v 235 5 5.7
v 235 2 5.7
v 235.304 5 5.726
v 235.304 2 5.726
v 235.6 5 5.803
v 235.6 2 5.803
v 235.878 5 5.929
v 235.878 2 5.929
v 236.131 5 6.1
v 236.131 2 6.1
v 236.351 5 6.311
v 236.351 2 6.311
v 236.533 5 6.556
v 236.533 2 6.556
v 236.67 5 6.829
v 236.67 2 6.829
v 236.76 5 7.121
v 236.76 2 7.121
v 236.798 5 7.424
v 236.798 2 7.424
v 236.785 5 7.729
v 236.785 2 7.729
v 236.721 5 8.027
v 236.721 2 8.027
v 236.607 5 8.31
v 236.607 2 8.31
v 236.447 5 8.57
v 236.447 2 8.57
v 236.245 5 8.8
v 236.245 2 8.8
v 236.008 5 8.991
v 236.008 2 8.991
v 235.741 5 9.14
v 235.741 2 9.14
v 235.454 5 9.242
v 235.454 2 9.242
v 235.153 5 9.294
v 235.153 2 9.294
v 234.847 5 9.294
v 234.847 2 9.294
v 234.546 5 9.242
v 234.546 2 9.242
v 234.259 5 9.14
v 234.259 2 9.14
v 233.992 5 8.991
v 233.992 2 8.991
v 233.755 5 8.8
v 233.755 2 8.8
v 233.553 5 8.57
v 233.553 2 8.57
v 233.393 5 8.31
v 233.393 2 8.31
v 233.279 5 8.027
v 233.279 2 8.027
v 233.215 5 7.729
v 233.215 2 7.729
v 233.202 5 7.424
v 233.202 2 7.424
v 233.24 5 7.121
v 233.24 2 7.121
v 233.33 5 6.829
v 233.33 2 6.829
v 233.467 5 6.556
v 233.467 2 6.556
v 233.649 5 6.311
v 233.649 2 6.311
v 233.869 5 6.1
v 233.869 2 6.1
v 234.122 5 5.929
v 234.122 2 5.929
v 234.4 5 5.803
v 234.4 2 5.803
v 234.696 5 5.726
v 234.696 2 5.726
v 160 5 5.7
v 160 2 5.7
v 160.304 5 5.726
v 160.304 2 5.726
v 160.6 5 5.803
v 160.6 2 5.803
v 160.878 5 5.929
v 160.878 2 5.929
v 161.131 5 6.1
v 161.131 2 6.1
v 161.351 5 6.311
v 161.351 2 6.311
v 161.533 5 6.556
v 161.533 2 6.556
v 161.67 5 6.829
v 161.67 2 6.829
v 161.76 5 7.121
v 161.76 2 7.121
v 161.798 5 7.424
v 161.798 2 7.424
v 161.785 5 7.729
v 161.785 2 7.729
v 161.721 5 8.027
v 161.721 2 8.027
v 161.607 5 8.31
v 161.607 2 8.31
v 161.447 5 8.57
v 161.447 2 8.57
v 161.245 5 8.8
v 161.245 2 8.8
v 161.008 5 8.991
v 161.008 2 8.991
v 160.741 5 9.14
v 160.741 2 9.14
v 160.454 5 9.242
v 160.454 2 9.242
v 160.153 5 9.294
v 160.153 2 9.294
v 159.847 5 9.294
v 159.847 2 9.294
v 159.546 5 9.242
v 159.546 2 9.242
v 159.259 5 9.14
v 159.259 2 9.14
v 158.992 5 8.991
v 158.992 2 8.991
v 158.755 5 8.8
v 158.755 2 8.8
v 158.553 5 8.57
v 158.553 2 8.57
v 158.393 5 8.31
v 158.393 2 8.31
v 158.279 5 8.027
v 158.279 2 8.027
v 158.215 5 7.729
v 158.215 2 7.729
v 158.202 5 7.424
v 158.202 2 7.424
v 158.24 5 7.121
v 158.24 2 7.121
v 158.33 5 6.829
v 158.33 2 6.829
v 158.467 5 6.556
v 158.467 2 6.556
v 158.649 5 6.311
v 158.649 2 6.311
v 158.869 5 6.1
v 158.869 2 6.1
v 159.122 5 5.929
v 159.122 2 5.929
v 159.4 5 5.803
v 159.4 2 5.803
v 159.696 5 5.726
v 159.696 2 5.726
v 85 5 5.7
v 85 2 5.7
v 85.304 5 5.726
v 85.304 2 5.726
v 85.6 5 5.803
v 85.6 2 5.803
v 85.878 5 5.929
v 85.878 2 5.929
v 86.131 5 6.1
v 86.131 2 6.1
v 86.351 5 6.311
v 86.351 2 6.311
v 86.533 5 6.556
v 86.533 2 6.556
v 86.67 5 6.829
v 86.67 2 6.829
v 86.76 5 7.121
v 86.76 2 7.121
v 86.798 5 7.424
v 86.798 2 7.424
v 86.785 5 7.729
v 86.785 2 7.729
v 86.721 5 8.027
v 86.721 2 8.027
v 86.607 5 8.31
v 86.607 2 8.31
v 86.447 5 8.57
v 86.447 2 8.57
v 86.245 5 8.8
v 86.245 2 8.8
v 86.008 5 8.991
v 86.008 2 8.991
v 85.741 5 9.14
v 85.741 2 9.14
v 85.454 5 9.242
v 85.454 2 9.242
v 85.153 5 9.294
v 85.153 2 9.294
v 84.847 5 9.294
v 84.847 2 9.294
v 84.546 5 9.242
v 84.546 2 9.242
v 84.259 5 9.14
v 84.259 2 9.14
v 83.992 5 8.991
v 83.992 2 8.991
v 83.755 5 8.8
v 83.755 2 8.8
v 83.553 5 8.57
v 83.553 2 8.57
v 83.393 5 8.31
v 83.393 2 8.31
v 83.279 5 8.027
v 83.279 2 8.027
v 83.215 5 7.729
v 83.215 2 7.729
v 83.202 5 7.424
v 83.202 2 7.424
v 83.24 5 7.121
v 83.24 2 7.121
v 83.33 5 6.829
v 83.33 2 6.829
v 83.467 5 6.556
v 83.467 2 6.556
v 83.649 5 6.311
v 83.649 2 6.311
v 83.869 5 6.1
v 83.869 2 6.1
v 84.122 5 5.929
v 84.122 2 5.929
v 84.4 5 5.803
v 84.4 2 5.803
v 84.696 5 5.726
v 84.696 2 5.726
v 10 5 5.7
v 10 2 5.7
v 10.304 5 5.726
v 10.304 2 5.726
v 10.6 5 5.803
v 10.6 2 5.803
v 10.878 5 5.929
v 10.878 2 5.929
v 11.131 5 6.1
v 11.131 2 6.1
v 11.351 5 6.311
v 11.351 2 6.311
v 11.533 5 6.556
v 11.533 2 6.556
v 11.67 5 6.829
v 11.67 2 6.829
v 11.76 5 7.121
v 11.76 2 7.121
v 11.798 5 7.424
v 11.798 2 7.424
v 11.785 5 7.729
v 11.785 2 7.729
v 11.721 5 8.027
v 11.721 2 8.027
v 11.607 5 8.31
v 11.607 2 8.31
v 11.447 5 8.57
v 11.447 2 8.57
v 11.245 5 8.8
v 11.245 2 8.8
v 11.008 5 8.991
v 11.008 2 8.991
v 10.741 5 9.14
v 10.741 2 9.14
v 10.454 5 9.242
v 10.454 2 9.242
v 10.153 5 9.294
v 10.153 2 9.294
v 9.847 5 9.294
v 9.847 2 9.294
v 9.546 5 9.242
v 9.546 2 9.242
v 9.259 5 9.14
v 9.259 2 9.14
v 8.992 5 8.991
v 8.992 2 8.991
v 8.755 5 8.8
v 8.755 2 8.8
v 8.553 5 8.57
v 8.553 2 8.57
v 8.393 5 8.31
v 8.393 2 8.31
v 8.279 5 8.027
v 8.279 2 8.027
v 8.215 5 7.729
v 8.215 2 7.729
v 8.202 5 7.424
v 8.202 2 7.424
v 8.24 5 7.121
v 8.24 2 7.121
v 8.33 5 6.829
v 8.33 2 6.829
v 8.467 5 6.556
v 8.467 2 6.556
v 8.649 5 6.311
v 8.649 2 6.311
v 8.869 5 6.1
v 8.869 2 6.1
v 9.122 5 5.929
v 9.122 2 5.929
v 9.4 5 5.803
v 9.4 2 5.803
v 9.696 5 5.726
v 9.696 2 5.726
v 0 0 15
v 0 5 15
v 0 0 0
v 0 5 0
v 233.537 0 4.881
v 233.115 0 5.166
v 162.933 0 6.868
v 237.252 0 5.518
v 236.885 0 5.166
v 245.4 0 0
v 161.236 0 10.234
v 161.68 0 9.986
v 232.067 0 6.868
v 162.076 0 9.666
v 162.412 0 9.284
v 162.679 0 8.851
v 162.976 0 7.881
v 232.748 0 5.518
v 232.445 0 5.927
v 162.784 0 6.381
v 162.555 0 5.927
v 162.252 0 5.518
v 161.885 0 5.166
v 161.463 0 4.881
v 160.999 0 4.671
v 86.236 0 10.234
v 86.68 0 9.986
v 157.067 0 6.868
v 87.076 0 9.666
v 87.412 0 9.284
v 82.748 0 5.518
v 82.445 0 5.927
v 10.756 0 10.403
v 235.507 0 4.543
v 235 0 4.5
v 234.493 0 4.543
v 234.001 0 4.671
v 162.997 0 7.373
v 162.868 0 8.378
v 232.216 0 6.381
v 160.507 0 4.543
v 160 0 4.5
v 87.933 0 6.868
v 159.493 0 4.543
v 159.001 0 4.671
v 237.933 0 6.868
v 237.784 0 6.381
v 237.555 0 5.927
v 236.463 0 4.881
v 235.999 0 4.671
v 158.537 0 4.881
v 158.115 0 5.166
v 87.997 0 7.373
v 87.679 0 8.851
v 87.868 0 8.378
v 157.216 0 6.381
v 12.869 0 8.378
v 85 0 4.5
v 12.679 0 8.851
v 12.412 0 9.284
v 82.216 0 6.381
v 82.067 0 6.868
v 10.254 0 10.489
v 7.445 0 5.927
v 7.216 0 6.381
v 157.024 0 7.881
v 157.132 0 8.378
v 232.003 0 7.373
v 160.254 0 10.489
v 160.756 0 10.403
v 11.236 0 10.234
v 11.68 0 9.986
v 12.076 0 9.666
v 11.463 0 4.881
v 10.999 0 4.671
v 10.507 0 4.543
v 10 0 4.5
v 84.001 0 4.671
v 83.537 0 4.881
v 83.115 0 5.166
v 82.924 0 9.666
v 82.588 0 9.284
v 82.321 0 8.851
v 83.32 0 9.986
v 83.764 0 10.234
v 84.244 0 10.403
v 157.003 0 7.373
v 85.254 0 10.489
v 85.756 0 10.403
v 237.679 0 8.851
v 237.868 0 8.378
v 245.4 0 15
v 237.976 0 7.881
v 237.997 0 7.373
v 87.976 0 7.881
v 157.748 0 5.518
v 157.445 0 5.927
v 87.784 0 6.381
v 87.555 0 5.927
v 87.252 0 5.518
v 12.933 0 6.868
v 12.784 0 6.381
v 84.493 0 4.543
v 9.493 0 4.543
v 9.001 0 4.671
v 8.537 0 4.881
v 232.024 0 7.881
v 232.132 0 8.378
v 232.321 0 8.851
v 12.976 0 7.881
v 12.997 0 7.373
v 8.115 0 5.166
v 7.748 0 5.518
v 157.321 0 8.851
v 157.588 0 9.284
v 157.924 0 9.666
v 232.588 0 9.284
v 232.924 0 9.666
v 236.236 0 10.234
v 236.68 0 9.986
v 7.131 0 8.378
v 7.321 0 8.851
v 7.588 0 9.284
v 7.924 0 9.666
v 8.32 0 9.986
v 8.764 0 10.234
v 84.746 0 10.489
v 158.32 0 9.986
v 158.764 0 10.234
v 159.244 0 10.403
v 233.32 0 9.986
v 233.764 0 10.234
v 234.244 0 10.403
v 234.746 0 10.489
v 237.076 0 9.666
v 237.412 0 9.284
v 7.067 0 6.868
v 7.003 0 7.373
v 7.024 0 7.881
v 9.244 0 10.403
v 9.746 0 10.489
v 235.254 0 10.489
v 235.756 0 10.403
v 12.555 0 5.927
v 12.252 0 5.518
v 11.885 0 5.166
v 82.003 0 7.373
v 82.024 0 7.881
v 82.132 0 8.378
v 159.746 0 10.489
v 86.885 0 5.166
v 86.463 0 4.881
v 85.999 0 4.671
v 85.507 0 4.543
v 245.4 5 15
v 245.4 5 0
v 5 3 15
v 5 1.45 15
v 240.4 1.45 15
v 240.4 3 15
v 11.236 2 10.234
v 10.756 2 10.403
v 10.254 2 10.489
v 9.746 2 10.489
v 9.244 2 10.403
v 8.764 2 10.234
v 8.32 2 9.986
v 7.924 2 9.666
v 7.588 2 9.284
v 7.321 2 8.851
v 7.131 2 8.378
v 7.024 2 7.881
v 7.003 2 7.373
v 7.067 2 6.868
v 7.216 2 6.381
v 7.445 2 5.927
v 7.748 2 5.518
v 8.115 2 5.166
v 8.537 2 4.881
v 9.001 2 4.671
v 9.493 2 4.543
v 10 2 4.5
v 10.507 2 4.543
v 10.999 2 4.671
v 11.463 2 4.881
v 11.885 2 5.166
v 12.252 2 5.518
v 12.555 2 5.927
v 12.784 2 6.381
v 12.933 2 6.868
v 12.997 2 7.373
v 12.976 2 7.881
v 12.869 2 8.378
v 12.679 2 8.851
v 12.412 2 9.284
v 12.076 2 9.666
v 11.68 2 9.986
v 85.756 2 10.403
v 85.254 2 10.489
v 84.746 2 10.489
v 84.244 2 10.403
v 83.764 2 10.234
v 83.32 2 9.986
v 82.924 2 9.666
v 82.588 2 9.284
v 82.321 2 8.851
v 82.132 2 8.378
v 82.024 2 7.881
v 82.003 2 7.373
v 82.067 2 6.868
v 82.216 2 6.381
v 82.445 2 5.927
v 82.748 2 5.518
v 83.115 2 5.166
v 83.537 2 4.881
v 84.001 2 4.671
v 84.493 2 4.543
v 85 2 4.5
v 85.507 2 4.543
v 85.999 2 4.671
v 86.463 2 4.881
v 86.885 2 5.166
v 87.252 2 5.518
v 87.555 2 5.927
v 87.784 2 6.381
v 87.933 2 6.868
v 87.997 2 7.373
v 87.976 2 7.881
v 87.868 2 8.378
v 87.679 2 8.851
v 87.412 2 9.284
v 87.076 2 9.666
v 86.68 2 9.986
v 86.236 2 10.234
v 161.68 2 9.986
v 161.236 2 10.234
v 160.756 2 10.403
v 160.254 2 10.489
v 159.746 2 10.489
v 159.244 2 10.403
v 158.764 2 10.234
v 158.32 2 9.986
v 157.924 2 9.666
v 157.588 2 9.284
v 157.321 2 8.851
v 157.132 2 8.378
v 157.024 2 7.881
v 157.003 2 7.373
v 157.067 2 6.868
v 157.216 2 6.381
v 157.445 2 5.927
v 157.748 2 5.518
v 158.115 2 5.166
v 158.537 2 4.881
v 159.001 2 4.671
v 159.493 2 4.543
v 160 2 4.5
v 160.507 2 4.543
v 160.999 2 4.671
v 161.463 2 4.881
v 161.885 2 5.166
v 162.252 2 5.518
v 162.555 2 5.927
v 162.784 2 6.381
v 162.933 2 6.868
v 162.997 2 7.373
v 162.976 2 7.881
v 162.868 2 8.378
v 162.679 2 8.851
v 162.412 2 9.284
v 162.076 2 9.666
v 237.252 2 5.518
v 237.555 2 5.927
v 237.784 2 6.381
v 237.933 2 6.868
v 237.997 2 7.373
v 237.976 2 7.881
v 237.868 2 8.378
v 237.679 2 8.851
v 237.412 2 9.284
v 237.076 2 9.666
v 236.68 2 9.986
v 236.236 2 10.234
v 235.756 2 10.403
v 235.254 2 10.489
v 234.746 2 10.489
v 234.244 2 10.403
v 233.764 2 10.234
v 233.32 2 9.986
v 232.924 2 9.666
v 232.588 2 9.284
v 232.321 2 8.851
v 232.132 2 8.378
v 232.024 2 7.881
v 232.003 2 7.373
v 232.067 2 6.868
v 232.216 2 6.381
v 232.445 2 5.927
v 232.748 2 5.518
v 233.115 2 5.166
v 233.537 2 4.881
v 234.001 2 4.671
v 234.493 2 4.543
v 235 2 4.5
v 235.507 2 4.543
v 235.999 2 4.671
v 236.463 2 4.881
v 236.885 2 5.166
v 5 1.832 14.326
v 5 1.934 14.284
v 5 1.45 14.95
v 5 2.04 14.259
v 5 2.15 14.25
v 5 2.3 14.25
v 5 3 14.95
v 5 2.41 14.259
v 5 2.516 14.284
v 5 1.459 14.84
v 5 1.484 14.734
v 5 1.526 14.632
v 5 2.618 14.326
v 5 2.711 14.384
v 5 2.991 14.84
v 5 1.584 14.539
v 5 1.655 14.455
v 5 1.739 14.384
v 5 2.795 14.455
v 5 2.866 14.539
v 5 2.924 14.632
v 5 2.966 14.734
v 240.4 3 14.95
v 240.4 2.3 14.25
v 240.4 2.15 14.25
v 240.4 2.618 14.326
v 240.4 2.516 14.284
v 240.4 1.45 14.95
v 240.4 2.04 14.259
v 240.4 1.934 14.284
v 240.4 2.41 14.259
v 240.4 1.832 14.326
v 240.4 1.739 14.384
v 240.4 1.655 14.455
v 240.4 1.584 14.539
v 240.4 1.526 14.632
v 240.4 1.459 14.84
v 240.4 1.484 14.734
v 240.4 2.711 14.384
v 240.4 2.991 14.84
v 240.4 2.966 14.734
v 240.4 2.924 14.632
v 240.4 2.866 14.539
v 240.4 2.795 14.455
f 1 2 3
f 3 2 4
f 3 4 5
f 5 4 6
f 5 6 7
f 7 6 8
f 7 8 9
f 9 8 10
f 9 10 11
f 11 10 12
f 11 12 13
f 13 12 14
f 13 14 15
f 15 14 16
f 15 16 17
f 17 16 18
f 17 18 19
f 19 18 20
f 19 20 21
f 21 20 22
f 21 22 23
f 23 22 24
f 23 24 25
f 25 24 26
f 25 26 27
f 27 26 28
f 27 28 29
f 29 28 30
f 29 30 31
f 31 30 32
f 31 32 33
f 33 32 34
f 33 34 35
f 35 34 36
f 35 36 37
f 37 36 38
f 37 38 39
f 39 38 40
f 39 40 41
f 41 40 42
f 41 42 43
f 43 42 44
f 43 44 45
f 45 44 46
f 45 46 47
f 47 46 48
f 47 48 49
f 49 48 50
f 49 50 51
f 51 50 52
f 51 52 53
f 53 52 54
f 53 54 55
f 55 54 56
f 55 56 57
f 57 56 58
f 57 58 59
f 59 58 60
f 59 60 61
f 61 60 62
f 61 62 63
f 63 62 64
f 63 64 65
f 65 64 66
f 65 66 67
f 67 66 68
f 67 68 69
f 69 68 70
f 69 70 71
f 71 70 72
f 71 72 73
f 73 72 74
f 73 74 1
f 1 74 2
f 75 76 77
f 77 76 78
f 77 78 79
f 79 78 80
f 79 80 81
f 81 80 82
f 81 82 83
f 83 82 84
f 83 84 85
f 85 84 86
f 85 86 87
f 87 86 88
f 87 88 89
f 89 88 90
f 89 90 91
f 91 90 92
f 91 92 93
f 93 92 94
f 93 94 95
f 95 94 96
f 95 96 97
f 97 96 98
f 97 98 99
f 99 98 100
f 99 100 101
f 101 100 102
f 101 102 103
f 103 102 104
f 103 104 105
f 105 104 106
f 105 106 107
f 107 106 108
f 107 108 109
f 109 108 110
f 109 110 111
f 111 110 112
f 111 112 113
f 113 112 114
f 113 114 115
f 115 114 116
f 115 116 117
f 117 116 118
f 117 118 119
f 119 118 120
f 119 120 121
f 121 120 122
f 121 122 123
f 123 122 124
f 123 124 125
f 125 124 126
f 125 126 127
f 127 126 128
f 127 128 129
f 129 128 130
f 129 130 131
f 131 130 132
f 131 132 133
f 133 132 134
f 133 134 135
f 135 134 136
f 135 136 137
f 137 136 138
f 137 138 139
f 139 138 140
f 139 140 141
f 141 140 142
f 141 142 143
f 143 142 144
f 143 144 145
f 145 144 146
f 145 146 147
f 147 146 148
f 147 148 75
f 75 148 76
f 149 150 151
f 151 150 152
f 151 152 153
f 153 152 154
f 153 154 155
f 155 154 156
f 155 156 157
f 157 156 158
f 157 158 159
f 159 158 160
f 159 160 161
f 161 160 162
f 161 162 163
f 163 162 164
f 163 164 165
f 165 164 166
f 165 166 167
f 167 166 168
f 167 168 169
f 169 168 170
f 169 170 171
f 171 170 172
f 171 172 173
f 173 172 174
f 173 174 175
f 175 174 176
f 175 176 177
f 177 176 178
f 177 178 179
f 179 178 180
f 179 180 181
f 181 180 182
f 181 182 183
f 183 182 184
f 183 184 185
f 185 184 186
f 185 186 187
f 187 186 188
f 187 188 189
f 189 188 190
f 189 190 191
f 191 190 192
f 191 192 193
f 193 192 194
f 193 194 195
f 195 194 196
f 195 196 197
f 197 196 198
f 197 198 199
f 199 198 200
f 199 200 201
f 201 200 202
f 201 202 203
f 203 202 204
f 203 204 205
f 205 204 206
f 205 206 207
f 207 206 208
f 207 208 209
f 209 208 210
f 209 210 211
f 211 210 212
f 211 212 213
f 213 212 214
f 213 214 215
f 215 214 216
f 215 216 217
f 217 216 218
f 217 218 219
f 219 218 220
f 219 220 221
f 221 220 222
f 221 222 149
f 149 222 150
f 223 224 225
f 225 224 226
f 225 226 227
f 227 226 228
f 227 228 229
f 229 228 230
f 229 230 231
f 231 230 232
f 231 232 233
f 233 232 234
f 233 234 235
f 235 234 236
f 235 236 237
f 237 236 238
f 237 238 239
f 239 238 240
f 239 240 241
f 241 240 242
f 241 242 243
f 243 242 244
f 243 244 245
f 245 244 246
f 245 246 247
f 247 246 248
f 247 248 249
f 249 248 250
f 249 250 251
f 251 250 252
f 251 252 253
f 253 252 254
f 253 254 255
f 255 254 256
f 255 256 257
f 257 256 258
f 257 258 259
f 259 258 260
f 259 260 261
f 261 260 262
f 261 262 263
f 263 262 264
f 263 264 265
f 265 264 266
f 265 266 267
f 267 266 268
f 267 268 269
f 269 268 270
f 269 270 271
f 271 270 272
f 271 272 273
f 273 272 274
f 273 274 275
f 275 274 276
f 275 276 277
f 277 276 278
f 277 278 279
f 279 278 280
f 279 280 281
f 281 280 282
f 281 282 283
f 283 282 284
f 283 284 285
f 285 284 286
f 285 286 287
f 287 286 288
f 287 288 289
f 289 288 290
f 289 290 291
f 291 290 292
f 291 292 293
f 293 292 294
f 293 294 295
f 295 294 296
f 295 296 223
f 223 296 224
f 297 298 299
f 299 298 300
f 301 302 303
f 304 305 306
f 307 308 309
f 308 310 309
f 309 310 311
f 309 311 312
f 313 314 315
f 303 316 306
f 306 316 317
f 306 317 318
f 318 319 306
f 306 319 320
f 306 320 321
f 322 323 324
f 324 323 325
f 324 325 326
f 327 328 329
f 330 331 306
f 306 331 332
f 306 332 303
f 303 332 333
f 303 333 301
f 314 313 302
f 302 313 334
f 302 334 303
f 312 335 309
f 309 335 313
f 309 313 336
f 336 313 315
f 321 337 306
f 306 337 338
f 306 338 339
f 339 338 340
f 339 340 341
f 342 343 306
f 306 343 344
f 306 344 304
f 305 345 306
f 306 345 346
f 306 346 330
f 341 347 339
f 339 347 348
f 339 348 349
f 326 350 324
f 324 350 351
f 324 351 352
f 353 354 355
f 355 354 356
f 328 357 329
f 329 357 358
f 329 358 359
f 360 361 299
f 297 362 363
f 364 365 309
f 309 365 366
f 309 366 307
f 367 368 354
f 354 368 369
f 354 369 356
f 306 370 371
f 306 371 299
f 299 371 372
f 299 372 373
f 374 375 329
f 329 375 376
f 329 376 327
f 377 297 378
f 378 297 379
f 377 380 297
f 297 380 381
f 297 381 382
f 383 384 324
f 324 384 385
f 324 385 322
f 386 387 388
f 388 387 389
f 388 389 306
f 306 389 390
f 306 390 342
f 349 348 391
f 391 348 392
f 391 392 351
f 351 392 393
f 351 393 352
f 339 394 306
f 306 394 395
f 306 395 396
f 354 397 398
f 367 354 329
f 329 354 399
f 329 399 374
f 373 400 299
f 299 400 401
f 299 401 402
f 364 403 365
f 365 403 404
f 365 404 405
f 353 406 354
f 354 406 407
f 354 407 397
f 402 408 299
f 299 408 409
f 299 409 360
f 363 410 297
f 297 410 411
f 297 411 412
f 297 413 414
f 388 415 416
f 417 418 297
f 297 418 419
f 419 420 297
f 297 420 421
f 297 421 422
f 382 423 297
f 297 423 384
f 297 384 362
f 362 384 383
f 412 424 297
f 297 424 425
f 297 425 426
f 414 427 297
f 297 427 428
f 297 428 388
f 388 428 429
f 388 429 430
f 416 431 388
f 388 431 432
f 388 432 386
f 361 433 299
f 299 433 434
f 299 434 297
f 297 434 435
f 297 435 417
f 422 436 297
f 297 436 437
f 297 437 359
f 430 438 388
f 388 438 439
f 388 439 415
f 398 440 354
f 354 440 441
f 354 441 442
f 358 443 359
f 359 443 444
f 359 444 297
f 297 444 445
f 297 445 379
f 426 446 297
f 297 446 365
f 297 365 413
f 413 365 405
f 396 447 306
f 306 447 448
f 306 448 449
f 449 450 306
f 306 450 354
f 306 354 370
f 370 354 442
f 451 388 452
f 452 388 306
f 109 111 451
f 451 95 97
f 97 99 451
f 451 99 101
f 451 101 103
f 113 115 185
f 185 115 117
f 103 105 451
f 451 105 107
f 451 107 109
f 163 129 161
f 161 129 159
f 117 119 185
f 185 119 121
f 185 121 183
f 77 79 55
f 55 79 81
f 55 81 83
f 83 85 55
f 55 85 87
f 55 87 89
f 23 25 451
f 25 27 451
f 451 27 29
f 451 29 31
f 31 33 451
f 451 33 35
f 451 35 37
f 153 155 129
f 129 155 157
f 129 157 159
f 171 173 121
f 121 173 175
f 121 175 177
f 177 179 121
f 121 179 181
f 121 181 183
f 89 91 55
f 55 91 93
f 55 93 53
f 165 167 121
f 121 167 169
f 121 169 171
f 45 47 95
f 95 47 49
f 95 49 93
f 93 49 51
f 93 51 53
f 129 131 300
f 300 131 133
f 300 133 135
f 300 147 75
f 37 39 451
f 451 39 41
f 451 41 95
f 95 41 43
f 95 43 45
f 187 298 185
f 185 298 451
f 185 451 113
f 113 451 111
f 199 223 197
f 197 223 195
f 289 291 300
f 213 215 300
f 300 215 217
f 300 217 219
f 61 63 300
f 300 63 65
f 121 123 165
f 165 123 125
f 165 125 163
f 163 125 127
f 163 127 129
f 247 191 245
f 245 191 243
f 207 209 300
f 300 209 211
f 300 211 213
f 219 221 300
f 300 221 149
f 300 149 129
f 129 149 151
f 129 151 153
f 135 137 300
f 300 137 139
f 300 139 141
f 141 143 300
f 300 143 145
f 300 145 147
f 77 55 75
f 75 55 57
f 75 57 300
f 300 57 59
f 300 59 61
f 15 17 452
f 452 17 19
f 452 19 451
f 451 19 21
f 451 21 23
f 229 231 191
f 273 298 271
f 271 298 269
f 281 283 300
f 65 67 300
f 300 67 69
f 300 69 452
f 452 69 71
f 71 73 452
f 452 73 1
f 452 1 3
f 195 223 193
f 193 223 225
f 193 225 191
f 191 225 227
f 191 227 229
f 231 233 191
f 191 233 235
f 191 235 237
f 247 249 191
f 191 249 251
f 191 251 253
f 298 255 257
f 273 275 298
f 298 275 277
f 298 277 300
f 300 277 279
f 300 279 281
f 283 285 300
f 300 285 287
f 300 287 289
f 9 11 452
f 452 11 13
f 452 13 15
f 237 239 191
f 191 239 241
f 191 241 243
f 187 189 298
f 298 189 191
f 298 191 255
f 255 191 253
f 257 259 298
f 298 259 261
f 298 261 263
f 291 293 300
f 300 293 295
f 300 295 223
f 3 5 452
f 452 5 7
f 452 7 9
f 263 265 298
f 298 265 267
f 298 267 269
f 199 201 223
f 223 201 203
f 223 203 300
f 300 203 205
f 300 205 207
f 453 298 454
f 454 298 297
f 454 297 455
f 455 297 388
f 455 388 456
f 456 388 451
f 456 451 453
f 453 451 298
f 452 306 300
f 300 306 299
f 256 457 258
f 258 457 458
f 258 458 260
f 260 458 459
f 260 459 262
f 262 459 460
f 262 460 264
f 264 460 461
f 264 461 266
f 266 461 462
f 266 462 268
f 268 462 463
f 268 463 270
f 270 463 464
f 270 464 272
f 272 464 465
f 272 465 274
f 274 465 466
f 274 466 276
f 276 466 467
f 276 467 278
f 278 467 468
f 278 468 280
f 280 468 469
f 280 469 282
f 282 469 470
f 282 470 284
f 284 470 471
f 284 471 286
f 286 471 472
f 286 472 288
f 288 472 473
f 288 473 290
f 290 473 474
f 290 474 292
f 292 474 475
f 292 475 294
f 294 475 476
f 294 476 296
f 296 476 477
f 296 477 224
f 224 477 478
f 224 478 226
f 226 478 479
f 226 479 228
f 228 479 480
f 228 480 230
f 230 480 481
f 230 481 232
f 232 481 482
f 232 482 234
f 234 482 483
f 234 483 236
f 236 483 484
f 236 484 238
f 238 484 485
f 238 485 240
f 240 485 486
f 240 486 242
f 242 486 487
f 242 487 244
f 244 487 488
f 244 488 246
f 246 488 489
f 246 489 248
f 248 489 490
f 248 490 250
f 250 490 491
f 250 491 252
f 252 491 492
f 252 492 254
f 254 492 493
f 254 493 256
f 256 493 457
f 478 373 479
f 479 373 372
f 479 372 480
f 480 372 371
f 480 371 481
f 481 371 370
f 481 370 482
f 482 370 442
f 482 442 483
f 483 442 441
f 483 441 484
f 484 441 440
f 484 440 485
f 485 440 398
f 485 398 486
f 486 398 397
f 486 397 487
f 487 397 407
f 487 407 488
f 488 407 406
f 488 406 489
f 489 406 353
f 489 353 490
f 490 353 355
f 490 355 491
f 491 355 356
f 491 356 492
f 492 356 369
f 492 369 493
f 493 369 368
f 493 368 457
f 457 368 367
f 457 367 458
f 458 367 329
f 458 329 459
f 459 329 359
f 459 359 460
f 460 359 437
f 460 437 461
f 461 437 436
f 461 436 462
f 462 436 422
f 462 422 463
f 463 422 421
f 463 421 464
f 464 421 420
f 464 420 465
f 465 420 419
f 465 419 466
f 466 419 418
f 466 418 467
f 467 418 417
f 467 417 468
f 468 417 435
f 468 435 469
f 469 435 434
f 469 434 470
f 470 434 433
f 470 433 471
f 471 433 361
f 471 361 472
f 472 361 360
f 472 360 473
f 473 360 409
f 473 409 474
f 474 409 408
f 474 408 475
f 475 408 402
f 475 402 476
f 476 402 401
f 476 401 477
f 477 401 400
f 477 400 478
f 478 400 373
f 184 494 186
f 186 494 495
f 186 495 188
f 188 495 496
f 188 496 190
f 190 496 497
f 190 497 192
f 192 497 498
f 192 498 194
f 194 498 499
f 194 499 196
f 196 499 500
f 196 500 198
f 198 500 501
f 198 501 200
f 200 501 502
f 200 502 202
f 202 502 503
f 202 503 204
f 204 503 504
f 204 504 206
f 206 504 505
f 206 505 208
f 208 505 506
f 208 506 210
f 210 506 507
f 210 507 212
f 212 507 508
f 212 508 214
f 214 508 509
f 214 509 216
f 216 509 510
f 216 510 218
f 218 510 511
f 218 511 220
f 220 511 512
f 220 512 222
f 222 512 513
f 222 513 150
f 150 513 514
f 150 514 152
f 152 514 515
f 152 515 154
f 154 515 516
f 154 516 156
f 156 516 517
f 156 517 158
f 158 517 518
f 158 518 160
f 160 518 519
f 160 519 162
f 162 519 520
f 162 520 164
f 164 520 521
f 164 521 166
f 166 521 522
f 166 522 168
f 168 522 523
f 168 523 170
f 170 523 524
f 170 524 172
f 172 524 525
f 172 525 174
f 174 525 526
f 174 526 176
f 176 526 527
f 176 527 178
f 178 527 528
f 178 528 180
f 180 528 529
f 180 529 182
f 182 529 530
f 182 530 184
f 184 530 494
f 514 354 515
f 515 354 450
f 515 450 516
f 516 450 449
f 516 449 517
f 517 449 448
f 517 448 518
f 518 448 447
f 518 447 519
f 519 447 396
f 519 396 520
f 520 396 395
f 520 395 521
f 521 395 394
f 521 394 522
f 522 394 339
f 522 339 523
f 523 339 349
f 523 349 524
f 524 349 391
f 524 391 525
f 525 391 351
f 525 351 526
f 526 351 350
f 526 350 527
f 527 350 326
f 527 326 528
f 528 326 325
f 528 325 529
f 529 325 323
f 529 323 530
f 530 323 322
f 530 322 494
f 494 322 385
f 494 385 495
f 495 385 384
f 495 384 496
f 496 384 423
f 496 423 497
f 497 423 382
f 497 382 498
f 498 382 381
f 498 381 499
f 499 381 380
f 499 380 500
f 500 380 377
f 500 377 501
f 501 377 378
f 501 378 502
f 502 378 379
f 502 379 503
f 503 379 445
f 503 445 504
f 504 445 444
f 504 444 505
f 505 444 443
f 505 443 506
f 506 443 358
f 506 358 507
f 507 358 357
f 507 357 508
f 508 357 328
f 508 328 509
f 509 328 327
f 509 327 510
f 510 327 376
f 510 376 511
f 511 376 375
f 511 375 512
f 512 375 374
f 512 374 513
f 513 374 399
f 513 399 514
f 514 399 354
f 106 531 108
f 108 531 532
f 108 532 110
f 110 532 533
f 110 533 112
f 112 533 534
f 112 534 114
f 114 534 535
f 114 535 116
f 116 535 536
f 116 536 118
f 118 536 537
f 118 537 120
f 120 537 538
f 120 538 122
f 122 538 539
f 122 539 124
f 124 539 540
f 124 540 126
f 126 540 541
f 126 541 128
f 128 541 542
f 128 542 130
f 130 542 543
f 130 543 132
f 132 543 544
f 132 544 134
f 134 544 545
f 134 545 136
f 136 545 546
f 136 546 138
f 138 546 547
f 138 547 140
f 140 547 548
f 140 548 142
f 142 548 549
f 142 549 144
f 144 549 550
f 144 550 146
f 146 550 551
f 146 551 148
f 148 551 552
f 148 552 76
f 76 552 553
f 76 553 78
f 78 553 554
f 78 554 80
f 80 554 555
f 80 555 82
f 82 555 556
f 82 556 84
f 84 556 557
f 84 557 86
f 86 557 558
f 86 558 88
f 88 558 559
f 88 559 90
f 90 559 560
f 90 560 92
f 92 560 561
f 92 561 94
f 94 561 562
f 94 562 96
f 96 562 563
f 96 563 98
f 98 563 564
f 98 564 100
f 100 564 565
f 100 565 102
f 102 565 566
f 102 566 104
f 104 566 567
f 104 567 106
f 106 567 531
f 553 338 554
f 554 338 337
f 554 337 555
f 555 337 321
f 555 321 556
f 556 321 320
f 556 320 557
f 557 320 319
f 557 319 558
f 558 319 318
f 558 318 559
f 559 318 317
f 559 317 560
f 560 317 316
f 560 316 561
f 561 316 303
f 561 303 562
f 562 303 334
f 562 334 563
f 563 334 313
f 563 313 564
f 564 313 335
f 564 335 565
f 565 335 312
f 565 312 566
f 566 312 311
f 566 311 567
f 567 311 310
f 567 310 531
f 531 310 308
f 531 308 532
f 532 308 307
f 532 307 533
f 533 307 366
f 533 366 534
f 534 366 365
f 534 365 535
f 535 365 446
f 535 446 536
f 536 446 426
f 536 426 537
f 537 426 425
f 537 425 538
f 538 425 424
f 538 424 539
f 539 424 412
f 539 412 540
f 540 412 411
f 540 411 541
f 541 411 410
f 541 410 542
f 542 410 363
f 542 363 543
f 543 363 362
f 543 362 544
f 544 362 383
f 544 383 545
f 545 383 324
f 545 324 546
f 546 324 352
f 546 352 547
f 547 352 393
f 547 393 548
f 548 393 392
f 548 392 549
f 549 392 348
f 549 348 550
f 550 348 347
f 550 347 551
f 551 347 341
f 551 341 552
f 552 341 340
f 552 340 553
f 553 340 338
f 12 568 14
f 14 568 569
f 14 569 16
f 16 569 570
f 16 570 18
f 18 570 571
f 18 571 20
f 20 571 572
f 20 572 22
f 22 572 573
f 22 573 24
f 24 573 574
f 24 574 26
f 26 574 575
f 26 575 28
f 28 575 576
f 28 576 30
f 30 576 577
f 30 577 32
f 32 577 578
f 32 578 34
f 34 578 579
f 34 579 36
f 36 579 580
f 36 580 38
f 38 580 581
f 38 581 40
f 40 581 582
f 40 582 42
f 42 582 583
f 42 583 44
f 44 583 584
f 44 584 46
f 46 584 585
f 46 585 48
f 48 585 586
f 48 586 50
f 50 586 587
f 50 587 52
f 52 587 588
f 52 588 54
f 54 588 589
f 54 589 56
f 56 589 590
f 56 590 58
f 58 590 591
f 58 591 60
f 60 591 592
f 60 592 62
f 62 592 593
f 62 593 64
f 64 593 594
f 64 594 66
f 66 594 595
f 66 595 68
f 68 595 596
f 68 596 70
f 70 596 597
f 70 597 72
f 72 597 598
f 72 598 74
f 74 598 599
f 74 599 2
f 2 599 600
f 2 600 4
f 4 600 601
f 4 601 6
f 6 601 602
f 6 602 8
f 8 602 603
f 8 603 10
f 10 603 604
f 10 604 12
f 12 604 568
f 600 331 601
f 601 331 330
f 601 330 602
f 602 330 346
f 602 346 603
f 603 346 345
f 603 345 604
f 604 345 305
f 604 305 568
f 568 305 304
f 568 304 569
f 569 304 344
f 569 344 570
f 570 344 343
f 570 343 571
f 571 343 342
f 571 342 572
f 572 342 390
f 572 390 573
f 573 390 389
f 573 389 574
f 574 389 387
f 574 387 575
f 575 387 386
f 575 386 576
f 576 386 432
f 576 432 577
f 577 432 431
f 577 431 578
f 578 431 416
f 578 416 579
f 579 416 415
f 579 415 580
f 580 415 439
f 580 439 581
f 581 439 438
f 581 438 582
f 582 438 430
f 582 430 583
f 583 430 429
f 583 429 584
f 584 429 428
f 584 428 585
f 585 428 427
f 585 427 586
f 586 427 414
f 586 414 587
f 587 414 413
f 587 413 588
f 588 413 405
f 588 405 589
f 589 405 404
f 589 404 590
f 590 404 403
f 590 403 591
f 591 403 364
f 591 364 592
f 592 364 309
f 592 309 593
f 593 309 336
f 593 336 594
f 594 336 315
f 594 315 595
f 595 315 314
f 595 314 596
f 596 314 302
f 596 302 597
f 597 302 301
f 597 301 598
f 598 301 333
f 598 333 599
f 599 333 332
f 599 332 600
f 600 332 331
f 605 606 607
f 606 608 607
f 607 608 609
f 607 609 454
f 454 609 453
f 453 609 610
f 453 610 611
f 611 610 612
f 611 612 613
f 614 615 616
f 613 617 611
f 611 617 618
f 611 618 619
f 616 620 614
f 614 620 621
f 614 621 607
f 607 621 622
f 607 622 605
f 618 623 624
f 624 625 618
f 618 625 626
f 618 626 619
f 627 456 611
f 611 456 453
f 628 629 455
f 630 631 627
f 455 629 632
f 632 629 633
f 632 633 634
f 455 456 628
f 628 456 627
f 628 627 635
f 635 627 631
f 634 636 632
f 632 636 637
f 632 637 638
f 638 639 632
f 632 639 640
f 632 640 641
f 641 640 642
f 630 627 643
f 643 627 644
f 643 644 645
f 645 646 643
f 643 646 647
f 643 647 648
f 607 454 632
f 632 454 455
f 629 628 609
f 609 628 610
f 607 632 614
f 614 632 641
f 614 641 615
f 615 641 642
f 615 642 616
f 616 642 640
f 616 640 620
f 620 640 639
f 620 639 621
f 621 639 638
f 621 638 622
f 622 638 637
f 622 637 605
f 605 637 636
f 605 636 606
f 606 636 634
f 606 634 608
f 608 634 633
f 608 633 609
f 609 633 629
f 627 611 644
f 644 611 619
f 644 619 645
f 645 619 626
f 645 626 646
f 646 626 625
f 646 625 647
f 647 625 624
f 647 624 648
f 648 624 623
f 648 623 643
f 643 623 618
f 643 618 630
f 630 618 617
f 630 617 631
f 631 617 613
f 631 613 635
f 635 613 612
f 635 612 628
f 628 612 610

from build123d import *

# Parameters (mm, degrees)
SKETCH1_W              = 245.4
SKETCH1_H              = 5
MAIN_BODY_DEPTH        = 15
SKETCH3_R              = 1.8
SCREW_HOLES_DEPTH      = 5
SKETCH4_R              = 3
SCREW_HEAD_HOLES_DEPTH = 2
SKETCH2_W              = 235.4
SKETCH2_H              = 1.55
CHANNEL_A_DEPTH        = 0.75
CHANNEL_A_ROUND_R      = 0.7


with BuildPart() as part:
    # Sketch1 → Main_Body (new body)
    with BuildSketch(Plane.XY):
        with Locations((122.7, 2.5)):
            Rectangle(SKETCH1_W, SKETCH1_H)
    extrude(amount=MAIN_BODY_DEPTH)

    # Sketch3 → Screw_Holes (cut)
    with BuildSketch(Plane.XZ):
        with Locations((10, 7.5)):
            Circle(SKETCH3_R)
        with Locations((85, 7.5)):
            Circle(SKETCH3_R)
        with Locations((160, 7.5)):
            Circle(SKETCH3_R)
        with Locations((235, 7.5)):
            Circle(SKETCH3_R)
    extrude(amount=-SCREW_HOLES_DEPTH, mode=Mode.SUBTRACT)

    # Sketch4 → Screw_Head_Holes (cut)
    with BuildSketch(Plane.XZ):
        with Locations((10, 7.5)):
            Circle(SKETCH4_R)
        with Locations((85, 7.5)):
            Circle(SKETCH4_R)
        with Locations((160, 7.5)):
            Circle(SKETCH4_R)
        with Locations((235, 7.5)):
            Circle(SKETCH4_R)
    extrude(amount=-SCREW_HEAD_HOLES_DEPTH, mode=Mode.SUBTRACT)

    # Sketch2 → Channel_A (cut)
    with BuildSketch(Plane.XY.offset(15)):
        with Locations((122.7, 2.225)):
            Rectangle(SKETCH2_W, SKETCH2_H)
    extrude(amount=-CHANNEL_A_DEPTH, mode=Mode.SUBTRACT)

    # Channel_A_Round
    channel_a_round_edges = [part.edges().sort_by_distance(p)[0] for p in [
        (122.7, 3, 14.25),
        (122.7, 1.45, 14.25),
    ]]
    fillet(channel_a_round_edges, radius=CHANNEL_A_ROUND_R)


solid = part.part
